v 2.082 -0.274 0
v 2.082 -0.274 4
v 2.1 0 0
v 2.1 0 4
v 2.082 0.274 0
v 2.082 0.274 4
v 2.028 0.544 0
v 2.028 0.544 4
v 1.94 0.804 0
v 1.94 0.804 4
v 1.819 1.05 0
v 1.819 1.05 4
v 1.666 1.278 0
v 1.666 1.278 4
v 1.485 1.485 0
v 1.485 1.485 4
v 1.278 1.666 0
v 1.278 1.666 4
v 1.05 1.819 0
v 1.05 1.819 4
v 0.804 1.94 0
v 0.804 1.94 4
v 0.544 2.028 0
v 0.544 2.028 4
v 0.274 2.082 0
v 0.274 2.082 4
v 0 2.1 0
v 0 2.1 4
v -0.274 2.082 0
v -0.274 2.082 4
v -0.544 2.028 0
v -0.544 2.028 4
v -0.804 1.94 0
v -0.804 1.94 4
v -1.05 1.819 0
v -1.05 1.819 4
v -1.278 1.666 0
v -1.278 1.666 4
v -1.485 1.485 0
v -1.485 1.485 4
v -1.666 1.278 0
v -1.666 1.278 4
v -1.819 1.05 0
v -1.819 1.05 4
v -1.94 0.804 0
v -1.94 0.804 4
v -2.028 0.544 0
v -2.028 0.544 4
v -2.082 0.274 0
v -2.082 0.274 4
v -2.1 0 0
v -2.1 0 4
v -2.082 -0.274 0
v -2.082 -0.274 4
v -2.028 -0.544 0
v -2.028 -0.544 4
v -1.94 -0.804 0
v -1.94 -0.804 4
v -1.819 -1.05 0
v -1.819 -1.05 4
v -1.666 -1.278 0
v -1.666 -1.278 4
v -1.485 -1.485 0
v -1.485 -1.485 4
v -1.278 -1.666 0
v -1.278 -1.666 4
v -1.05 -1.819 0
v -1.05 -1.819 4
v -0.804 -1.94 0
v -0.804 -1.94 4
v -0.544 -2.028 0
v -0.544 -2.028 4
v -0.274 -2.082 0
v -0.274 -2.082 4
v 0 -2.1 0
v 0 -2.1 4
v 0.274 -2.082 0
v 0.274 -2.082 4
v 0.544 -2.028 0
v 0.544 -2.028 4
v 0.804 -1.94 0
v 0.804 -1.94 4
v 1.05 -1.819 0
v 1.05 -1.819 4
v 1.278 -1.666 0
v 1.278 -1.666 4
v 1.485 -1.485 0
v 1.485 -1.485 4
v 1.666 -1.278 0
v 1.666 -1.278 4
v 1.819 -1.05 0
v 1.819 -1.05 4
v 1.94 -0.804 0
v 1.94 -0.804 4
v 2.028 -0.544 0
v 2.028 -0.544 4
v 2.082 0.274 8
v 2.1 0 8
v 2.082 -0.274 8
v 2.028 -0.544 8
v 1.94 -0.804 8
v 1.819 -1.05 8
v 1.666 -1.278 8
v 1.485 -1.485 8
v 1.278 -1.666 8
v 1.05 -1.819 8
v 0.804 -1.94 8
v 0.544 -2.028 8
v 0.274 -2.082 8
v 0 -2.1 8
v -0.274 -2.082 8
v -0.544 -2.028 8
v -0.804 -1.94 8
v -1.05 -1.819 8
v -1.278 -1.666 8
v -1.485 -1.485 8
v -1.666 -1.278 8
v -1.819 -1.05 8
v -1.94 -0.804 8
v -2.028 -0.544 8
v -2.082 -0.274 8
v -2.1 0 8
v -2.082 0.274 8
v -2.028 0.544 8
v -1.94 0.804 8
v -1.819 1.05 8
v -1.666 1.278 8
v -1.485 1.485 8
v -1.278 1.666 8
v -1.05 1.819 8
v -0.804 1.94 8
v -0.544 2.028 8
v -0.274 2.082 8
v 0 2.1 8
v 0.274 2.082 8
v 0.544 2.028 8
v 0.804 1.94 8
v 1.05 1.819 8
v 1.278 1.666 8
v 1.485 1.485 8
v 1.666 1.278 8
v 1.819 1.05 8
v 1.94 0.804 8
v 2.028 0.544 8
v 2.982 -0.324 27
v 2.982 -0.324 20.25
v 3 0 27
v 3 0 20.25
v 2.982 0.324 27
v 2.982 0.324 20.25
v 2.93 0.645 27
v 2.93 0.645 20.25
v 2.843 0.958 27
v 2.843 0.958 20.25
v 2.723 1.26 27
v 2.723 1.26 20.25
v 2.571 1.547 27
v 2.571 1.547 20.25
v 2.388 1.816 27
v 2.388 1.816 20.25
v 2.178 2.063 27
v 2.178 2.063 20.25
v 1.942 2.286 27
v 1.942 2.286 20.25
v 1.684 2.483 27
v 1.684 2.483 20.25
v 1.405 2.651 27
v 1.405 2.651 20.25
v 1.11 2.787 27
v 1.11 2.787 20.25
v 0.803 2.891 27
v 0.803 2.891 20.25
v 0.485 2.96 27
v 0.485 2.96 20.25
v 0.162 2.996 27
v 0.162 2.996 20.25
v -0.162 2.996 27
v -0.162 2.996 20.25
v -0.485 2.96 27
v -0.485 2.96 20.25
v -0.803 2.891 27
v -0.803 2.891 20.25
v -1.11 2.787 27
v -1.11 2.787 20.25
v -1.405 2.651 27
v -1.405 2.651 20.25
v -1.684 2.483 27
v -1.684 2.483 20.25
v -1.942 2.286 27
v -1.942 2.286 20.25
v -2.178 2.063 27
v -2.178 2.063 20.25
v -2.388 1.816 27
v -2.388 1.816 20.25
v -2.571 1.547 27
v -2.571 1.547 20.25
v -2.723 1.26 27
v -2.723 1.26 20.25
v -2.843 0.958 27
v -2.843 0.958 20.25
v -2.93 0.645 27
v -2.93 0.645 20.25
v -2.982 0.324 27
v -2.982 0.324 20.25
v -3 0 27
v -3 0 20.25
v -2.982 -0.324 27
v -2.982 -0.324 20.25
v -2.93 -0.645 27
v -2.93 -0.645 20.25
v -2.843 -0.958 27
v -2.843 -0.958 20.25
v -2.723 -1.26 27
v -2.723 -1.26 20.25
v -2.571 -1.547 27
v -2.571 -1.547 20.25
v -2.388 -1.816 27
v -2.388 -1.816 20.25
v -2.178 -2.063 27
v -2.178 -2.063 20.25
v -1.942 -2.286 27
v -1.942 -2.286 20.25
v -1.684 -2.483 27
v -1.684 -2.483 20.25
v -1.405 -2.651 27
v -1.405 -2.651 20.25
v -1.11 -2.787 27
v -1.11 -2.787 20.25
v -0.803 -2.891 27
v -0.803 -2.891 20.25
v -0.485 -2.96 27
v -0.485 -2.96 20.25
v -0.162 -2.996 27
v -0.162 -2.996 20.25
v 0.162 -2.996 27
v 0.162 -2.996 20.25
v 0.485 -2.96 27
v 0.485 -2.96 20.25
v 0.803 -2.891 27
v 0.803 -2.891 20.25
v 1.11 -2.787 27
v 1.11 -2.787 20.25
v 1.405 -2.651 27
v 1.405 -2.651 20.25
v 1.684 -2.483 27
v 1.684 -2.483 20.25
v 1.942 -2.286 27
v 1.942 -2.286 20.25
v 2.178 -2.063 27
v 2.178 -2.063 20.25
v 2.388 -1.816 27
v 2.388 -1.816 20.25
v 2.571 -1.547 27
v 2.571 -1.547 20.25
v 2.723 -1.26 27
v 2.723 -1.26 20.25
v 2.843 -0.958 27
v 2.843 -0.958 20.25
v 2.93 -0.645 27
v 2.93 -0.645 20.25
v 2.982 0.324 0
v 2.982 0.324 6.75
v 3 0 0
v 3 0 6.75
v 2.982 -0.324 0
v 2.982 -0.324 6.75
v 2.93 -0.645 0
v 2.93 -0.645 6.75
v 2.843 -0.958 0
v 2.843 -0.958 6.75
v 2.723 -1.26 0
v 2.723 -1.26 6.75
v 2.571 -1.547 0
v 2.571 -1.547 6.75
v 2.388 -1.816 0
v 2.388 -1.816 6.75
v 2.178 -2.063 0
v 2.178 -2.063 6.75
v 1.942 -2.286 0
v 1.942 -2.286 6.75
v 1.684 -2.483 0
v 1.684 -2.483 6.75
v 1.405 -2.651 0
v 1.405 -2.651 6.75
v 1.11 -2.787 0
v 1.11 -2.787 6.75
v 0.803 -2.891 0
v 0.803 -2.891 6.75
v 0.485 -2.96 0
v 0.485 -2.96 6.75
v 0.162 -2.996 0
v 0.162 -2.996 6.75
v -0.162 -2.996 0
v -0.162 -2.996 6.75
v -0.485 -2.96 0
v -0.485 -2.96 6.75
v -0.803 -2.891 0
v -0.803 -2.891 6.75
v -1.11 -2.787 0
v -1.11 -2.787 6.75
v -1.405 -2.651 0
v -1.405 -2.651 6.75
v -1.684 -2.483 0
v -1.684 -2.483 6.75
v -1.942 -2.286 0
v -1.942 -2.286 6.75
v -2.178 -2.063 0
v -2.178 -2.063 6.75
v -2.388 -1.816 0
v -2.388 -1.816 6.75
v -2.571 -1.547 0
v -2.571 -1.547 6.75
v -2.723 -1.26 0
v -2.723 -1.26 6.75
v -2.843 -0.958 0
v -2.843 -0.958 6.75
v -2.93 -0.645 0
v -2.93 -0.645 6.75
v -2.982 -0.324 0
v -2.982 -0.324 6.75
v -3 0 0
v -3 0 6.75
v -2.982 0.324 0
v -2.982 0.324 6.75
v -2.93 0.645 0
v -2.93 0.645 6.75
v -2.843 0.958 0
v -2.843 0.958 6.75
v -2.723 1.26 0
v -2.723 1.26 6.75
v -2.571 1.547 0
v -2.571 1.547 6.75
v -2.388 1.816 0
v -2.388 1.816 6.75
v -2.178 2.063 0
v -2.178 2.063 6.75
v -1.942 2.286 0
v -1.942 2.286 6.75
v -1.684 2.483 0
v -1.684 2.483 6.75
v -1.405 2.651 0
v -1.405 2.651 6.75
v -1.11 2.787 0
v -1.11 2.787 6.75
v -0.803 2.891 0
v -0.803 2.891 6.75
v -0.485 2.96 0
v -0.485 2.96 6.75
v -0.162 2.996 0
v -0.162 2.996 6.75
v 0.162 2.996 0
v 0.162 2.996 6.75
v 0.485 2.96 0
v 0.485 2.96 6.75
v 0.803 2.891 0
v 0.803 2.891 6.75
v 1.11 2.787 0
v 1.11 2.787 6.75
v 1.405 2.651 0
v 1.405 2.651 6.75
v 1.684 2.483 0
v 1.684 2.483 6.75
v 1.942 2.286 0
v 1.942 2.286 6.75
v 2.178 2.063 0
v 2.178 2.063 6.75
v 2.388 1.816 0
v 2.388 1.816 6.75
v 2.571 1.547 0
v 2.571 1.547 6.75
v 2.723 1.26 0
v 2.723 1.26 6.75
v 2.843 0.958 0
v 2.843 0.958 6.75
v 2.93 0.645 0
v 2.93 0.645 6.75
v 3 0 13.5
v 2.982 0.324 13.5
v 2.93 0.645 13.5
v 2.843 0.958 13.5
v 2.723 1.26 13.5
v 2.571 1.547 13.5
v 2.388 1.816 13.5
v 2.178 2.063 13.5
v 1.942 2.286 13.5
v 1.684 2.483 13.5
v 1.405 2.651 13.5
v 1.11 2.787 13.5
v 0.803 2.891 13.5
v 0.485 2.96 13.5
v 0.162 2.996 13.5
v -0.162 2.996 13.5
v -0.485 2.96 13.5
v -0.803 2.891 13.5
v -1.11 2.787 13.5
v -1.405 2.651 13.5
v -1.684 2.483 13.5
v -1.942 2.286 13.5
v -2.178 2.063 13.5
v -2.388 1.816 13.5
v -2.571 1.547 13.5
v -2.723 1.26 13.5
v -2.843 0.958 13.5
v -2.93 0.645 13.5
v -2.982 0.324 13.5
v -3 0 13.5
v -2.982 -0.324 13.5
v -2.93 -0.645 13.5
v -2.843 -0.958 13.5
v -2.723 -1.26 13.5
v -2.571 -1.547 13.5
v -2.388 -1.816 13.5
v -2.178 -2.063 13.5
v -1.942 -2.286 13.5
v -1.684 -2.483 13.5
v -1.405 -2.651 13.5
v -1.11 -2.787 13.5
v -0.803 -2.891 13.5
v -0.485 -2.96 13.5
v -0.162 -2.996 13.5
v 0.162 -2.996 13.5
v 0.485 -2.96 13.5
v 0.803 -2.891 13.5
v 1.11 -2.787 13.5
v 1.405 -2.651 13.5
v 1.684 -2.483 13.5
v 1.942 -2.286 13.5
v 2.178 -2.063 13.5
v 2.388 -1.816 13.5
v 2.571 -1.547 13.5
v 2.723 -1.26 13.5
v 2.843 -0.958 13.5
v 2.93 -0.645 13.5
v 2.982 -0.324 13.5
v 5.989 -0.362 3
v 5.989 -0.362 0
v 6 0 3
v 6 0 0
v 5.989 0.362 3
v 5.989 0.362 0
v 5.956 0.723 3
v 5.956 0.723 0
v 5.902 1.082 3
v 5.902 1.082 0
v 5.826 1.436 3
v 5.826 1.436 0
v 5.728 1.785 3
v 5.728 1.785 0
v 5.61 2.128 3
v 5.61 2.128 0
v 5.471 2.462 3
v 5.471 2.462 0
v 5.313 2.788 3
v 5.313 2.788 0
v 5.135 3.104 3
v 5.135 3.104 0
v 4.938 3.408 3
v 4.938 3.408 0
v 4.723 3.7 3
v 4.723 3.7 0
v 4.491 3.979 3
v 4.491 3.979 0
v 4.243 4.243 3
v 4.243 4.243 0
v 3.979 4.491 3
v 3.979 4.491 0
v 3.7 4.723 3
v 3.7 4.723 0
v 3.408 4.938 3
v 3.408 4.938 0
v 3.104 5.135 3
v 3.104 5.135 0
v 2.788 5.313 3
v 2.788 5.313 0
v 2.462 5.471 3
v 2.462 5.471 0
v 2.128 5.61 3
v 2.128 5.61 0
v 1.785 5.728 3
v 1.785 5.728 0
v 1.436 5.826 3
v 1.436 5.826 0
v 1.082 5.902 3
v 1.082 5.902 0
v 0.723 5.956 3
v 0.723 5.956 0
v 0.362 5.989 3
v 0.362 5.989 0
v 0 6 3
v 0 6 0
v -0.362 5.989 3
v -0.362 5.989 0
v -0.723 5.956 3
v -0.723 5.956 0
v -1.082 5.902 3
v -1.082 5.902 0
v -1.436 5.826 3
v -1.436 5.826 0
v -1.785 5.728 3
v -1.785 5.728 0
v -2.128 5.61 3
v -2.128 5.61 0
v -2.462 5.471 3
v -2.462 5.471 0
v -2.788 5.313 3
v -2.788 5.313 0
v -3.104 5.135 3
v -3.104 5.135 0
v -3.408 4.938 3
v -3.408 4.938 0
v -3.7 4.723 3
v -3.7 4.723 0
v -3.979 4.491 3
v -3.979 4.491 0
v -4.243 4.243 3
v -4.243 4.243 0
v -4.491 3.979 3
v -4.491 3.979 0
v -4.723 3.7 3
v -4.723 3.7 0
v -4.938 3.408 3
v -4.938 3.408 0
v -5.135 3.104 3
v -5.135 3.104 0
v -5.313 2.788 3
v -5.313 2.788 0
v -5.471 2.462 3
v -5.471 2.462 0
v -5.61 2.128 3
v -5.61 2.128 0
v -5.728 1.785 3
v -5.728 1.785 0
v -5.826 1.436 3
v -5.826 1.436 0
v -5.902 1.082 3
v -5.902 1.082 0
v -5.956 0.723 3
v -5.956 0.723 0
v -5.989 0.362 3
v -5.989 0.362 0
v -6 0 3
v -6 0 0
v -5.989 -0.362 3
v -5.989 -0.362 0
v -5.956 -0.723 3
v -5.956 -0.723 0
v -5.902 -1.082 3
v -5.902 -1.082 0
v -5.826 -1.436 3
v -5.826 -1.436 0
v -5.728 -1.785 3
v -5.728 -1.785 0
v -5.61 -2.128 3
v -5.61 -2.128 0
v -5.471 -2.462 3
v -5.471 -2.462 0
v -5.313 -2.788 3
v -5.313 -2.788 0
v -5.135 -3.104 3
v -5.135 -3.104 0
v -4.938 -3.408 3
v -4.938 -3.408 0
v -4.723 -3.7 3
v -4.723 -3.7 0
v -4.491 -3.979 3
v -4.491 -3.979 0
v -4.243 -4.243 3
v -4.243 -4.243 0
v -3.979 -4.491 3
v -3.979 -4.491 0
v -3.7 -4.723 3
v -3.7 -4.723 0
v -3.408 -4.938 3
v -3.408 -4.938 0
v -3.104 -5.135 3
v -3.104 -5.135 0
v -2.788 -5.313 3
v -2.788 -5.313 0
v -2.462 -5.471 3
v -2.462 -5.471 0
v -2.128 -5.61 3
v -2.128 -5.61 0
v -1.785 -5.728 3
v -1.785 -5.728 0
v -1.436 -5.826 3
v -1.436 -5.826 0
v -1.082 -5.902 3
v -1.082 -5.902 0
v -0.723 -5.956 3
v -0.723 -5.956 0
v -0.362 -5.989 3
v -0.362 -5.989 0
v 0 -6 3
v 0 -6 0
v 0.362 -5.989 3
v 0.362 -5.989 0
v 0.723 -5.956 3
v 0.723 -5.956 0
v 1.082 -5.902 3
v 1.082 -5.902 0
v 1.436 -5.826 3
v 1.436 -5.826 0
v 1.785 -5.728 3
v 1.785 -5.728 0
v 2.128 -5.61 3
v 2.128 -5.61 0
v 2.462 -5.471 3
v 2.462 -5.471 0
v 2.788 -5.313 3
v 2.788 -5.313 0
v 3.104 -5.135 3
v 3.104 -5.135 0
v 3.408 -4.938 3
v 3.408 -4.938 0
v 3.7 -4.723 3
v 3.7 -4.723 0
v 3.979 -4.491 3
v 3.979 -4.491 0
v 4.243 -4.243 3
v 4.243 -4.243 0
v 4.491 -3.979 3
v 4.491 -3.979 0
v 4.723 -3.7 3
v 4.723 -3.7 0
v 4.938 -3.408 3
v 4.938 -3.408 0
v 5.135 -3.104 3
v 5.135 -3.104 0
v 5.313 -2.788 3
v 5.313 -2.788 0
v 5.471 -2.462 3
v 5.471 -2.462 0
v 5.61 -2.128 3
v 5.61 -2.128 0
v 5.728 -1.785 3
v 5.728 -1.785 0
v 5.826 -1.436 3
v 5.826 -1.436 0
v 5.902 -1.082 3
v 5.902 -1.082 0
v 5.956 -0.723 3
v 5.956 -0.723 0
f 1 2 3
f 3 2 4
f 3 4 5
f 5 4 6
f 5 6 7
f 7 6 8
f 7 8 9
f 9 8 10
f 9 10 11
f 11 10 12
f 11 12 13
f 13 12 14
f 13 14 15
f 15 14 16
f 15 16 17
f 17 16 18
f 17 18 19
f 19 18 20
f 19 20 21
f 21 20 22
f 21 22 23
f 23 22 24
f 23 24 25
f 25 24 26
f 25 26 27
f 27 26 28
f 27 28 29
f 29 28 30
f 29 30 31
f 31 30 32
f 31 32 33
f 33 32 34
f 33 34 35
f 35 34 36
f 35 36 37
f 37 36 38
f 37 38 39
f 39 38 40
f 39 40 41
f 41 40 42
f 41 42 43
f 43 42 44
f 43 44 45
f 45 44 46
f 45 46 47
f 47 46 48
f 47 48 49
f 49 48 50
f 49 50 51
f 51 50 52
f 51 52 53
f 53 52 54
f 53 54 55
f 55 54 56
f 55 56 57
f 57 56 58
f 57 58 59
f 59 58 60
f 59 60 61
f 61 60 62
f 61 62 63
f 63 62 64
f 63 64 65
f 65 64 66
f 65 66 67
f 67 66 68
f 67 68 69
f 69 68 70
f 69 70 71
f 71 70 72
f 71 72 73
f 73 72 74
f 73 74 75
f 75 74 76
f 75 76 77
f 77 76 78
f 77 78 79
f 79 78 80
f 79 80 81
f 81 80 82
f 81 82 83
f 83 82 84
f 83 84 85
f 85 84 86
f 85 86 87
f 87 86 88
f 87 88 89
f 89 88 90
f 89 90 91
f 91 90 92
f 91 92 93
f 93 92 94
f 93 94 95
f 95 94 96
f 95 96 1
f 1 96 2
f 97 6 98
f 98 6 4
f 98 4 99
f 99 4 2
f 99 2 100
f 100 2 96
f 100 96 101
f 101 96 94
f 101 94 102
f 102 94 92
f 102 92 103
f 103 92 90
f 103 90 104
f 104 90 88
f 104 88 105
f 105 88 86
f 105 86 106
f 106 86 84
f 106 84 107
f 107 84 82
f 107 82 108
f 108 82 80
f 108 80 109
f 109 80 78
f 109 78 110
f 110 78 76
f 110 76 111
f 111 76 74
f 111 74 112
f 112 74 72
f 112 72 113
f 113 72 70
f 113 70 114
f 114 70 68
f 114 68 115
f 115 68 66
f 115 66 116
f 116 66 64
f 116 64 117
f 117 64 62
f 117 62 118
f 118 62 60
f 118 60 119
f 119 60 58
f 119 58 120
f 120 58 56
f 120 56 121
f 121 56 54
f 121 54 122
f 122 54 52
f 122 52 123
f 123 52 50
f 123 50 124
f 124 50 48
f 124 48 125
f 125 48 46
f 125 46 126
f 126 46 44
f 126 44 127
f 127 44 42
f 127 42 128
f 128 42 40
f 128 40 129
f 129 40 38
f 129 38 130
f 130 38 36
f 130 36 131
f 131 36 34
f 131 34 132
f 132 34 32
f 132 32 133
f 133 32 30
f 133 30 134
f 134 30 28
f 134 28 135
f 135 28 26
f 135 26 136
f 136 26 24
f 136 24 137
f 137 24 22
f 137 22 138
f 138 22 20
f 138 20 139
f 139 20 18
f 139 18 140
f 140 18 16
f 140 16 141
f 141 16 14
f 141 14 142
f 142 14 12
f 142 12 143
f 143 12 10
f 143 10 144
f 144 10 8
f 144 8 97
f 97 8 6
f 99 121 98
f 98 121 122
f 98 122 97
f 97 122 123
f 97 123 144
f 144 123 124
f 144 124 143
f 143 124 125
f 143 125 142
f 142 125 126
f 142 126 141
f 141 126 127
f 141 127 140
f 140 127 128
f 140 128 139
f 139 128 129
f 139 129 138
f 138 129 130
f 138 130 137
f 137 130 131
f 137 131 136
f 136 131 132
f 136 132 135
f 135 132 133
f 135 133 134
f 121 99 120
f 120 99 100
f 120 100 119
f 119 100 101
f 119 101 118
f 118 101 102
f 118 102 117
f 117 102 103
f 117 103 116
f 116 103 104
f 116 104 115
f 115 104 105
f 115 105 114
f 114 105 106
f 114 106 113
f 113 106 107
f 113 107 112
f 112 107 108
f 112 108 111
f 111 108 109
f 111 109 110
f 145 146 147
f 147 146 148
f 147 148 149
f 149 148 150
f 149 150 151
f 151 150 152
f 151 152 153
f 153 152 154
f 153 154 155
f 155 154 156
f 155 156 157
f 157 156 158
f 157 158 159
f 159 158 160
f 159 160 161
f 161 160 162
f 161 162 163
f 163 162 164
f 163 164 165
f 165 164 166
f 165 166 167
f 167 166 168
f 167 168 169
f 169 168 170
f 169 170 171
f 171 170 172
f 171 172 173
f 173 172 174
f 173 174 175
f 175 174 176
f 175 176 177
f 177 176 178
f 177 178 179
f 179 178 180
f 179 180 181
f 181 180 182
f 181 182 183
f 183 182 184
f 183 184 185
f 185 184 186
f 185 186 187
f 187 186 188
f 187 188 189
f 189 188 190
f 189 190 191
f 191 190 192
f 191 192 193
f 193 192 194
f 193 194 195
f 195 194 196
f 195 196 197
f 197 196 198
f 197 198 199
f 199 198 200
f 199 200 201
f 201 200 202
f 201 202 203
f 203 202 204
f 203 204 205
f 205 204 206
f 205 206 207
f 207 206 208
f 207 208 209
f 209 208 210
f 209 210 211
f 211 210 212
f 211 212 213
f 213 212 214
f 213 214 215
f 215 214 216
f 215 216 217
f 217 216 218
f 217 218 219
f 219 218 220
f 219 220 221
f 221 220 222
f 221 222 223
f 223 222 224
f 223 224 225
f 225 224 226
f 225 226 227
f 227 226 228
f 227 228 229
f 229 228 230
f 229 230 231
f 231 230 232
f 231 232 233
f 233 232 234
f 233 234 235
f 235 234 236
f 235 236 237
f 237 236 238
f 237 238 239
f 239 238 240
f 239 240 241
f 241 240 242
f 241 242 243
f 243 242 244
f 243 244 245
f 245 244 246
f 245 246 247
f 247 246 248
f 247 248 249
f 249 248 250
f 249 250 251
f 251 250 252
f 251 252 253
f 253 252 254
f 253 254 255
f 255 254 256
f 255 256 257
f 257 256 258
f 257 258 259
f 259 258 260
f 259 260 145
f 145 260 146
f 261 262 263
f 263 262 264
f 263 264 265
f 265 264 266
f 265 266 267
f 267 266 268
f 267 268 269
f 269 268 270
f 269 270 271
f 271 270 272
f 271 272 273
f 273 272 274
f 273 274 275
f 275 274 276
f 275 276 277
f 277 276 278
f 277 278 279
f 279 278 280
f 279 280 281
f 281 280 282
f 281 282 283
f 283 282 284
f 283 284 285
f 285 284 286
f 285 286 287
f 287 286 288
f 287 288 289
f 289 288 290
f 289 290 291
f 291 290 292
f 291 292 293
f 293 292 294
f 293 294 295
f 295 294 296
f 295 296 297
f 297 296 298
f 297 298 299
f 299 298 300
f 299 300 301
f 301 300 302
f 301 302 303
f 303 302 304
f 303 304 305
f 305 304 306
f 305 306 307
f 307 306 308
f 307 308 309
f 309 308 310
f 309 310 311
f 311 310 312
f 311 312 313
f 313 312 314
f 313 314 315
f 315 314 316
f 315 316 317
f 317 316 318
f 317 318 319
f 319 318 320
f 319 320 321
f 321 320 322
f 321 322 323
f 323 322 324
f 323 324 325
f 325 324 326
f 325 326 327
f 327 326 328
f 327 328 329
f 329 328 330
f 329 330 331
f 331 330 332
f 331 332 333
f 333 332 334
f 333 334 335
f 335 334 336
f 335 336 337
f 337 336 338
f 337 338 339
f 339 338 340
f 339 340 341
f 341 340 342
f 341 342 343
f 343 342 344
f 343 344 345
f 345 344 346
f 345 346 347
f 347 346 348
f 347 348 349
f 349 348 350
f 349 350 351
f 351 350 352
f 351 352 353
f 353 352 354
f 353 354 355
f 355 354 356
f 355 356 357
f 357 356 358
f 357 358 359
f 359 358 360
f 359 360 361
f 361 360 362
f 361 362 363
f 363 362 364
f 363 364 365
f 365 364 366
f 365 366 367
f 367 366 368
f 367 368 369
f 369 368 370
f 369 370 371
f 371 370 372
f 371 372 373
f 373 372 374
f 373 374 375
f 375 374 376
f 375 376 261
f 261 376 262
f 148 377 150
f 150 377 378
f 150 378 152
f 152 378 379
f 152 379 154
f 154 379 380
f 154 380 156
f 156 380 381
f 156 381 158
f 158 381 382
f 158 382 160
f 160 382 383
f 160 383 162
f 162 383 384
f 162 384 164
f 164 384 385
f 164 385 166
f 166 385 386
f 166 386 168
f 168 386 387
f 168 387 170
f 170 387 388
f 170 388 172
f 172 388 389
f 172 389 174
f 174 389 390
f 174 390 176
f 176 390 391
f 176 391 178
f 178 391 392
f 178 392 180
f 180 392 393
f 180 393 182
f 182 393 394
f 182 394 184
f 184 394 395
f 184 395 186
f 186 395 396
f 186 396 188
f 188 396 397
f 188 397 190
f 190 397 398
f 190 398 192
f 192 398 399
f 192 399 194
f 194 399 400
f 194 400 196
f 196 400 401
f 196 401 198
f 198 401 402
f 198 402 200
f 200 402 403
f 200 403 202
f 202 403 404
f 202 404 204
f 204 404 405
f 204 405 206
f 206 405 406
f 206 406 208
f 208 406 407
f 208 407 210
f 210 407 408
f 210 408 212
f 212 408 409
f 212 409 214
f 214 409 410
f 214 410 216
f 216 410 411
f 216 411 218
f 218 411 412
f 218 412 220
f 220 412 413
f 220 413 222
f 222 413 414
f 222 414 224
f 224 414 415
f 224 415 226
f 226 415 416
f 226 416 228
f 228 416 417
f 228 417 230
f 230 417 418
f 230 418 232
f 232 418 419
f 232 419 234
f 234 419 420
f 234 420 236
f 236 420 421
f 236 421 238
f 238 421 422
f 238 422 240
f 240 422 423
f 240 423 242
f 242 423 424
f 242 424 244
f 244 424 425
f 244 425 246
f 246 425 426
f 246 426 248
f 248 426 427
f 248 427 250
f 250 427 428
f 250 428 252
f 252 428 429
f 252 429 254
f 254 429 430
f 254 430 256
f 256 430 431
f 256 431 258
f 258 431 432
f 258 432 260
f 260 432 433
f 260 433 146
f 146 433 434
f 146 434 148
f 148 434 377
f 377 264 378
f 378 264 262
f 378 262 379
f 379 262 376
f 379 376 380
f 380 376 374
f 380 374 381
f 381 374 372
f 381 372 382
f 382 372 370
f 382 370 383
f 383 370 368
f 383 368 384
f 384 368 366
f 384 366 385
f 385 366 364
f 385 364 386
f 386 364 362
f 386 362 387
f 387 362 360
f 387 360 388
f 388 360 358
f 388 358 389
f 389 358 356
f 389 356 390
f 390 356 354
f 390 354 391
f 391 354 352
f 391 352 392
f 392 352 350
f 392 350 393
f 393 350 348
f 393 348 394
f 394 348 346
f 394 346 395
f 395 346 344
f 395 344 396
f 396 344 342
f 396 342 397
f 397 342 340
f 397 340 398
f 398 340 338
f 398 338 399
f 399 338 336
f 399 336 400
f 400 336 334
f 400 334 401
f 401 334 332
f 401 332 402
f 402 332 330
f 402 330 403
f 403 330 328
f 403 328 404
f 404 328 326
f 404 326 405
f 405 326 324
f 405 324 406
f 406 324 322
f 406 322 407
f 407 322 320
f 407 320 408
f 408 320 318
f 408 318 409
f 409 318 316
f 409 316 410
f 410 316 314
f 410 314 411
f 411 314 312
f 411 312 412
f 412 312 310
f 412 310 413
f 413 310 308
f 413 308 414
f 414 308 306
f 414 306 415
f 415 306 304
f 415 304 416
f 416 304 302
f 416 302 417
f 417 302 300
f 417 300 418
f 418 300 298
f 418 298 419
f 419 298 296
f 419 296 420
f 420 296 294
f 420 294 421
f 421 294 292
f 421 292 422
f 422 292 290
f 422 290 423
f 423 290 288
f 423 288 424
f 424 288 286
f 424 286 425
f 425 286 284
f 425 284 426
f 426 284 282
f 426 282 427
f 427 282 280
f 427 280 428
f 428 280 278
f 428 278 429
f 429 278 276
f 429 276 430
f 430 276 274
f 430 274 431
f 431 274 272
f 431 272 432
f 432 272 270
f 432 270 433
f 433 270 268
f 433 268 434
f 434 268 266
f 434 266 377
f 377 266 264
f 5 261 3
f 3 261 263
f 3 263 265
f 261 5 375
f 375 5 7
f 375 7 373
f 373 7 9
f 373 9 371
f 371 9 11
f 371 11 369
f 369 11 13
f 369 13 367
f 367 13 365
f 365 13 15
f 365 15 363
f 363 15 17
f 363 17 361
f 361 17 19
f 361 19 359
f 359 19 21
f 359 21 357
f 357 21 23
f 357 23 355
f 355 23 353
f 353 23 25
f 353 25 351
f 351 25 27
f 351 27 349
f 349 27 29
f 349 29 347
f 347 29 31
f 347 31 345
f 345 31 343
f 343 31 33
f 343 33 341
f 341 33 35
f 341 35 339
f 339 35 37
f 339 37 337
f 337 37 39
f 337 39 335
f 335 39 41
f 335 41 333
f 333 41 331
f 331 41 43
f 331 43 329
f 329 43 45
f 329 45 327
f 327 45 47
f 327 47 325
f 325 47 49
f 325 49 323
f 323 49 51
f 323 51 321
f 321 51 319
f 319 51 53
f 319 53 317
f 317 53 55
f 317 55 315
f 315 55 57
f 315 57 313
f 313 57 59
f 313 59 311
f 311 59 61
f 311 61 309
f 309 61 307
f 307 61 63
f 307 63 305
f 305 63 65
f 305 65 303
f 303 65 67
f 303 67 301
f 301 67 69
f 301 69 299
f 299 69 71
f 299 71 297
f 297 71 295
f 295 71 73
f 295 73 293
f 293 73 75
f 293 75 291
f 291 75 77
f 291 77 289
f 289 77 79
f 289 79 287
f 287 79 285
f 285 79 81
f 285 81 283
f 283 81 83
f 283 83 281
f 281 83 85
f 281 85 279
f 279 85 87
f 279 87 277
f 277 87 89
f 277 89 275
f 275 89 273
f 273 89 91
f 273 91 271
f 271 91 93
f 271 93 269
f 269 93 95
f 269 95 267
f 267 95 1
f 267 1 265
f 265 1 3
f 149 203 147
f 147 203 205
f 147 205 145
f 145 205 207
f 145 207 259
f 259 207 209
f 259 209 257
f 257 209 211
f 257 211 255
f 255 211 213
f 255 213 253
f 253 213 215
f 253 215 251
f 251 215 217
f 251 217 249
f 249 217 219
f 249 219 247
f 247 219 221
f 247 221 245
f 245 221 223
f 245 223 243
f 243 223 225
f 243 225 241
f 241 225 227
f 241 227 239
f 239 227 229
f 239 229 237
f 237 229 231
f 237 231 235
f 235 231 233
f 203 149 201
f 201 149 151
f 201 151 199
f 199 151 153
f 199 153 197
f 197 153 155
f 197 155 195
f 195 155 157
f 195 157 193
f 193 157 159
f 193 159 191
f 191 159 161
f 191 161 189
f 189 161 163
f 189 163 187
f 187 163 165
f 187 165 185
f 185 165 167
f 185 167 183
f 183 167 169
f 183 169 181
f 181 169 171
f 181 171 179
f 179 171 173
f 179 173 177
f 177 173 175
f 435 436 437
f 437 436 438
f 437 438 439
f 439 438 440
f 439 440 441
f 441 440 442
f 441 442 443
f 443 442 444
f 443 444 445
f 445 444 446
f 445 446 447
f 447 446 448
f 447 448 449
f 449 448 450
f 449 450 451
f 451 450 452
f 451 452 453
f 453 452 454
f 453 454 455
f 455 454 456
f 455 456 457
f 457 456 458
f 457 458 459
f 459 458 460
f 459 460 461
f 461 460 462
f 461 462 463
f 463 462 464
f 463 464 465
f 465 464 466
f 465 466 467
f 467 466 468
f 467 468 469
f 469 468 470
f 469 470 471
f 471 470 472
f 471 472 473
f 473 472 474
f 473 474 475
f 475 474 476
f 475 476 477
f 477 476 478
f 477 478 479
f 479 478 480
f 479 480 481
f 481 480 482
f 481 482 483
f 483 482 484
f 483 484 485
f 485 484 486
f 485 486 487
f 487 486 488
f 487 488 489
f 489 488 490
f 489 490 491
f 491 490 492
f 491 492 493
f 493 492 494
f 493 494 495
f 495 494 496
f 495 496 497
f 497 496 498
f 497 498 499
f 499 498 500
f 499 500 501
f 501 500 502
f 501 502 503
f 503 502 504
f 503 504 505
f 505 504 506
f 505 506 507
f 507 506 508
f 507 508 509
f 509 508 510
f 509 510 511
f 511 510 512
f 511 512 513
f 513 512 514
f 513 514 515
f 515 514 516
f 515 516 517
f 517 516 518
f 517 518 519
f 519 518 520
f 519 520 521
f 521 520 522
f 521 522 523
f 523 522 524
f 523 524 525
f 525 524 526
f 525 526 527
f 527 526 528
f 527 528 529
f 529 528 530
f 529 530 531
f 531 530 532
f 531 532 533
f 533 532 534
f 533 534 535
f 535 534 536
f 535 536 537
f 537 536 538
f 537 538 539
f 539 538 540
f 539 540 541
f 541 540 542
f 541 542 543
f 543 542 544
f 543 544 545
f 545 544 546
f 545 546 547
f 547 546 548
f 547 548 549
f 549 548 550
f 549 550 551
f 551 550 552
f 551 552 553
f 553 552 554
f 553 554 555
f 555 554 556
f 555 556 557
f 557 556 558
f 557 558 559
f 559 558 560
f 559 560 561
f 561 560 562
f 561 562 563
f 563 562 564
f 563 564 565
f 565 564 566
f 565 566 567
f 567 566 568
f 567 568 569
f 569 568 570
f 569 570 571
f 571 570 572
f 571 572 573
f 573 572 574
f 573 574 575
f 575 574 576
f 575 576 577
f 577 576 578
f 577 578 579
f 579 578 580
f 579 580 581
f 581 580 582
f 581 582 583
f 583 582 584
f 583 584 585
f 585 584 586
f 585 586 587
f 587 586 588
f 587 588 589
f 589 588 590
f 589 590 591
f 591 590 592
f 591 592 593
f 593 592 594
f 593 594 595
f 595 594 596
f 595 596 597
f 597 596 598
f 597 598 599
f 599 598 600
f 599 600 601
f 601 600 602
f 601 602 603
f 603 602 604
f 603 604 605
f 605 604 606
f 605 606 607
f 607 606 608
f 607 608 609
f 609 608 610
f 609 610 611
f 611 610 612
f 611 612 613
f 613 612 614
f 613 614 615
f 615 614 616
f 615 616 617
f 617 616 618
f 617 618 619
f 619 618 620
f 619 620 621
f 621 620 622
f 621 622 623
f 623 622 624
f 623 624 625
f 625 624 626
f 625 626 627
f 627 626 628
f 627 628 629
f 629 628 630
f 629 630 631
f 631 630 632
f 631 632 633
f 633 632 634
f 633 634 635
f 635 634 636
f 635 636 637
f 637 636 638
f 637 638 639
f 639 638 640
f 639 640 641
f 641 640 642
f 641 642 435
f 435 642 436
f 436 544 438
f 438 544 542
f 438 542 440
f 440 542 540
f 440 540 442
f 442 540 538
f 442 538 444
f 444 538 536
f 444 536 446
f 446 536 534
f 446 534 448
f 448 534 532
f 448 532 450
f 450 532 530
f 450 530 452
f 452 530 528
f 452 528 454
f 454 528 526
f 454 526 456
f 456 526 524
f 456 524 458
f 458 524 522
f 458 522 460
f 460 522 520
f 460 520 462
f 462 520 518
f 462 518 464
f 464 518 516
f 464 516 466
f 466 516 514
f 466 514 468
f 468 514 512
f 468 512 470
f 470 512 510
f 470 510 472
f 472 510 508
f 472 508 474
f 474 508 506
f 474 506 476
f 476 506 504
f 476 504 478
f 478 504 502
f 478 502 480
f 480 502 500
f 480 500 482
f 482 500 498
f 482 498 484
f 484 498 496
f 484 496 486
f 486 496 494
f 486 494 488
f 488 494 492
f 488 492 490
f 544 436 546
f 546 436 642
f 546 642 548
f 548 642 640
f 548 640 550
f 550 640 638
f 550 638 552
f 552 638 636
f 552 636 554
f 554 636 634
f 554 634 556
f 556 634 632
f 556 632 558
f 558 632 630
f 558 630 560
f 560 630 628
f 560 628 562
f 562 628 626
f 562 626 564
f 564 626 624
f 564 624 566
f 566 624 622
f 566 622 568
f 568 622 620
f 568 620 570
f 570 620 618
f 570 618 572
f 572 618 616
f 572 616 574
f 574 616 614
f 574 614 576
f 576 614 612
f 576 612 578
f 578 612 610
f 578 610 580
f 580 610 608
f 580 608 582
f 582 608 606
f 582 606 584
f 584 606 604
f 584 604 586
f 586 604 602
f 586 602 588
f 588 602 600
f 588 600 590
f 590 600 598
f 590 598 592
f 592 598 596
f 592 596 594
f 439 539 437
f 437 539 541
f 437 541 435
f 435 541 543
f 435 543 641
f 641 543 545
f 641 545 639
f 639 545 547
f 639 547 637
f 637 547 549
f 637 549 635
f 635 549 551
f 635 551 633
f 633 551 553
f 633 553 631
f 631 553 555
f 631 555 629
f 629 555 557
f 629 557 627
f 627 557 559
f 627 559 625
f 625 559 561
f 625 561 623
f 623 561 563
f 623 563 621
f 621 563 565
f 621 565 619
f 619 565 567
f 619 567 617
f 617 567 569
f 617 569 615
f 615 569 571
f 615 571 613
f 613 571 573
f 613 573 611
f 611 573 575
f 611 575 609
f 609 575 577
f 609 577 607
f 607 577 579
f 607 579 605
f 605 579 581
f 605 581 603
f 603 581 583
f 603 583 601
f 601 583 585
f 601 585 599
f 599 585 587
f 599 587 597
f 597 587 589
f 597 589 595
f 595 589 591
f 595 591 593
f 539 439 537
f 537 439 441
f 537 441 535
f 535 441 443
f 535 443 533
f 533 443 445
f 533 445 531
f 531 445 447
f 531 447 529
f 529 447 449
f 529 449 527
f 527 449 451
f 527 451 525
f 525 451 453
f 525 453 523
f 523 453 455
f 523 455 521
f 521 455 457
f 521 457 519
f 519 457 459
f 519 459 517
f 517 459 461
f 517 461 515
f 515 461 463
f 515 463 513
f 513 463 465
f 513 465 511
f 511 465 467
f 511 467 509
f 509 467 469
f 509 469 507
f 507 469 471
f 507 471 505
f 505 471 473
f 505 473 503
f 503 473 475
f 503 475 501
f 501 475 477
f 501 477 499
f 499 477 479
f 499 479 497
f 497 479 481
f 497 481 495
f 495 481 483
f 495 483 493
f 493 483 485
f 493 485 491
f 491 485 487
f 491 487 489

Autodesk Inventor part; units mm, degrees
ref_plane "YZ Plane" through (0, 0, 0) normal (1, 0, 0) x (0, 1, 0)
ref_plane "XZ Plane" through (0, 0, 0) normal (0, 1, 0) x (-1, 0, 0)
sketch "Skizze1" plane through (0, 0, 0) normal (0, 0, 1) x (1, 0, 0)
  circle A0 centre (0, 0) radius 3
extrude "Extrusion1" add sketch "Skizze1" along normal blind 27
sketch "Skizze2" plane through (0, 0, 0) normal (0, 0, 1) x (1, 0, 0)
  circle A0 centre (0, 0) radius 6
extrude "Extrusion2" add sketch "Skizze2" along normal blind 3 separate body
ref_plane "Arbeitsebene1" through (0, 0, 4) normal (0, 0, 1) x (1, 0, 0)
sketch "Skizze3" plane through (0, 0, 4) normal (0, 0, 1) x (1, 0, 0)
  circle A0 centre (0, 0) radius 2.1
extrude "Extrusion3" cut sketch "Skizze3" along normal mid plane 8 bodies 1
properties part number "Taststift"
